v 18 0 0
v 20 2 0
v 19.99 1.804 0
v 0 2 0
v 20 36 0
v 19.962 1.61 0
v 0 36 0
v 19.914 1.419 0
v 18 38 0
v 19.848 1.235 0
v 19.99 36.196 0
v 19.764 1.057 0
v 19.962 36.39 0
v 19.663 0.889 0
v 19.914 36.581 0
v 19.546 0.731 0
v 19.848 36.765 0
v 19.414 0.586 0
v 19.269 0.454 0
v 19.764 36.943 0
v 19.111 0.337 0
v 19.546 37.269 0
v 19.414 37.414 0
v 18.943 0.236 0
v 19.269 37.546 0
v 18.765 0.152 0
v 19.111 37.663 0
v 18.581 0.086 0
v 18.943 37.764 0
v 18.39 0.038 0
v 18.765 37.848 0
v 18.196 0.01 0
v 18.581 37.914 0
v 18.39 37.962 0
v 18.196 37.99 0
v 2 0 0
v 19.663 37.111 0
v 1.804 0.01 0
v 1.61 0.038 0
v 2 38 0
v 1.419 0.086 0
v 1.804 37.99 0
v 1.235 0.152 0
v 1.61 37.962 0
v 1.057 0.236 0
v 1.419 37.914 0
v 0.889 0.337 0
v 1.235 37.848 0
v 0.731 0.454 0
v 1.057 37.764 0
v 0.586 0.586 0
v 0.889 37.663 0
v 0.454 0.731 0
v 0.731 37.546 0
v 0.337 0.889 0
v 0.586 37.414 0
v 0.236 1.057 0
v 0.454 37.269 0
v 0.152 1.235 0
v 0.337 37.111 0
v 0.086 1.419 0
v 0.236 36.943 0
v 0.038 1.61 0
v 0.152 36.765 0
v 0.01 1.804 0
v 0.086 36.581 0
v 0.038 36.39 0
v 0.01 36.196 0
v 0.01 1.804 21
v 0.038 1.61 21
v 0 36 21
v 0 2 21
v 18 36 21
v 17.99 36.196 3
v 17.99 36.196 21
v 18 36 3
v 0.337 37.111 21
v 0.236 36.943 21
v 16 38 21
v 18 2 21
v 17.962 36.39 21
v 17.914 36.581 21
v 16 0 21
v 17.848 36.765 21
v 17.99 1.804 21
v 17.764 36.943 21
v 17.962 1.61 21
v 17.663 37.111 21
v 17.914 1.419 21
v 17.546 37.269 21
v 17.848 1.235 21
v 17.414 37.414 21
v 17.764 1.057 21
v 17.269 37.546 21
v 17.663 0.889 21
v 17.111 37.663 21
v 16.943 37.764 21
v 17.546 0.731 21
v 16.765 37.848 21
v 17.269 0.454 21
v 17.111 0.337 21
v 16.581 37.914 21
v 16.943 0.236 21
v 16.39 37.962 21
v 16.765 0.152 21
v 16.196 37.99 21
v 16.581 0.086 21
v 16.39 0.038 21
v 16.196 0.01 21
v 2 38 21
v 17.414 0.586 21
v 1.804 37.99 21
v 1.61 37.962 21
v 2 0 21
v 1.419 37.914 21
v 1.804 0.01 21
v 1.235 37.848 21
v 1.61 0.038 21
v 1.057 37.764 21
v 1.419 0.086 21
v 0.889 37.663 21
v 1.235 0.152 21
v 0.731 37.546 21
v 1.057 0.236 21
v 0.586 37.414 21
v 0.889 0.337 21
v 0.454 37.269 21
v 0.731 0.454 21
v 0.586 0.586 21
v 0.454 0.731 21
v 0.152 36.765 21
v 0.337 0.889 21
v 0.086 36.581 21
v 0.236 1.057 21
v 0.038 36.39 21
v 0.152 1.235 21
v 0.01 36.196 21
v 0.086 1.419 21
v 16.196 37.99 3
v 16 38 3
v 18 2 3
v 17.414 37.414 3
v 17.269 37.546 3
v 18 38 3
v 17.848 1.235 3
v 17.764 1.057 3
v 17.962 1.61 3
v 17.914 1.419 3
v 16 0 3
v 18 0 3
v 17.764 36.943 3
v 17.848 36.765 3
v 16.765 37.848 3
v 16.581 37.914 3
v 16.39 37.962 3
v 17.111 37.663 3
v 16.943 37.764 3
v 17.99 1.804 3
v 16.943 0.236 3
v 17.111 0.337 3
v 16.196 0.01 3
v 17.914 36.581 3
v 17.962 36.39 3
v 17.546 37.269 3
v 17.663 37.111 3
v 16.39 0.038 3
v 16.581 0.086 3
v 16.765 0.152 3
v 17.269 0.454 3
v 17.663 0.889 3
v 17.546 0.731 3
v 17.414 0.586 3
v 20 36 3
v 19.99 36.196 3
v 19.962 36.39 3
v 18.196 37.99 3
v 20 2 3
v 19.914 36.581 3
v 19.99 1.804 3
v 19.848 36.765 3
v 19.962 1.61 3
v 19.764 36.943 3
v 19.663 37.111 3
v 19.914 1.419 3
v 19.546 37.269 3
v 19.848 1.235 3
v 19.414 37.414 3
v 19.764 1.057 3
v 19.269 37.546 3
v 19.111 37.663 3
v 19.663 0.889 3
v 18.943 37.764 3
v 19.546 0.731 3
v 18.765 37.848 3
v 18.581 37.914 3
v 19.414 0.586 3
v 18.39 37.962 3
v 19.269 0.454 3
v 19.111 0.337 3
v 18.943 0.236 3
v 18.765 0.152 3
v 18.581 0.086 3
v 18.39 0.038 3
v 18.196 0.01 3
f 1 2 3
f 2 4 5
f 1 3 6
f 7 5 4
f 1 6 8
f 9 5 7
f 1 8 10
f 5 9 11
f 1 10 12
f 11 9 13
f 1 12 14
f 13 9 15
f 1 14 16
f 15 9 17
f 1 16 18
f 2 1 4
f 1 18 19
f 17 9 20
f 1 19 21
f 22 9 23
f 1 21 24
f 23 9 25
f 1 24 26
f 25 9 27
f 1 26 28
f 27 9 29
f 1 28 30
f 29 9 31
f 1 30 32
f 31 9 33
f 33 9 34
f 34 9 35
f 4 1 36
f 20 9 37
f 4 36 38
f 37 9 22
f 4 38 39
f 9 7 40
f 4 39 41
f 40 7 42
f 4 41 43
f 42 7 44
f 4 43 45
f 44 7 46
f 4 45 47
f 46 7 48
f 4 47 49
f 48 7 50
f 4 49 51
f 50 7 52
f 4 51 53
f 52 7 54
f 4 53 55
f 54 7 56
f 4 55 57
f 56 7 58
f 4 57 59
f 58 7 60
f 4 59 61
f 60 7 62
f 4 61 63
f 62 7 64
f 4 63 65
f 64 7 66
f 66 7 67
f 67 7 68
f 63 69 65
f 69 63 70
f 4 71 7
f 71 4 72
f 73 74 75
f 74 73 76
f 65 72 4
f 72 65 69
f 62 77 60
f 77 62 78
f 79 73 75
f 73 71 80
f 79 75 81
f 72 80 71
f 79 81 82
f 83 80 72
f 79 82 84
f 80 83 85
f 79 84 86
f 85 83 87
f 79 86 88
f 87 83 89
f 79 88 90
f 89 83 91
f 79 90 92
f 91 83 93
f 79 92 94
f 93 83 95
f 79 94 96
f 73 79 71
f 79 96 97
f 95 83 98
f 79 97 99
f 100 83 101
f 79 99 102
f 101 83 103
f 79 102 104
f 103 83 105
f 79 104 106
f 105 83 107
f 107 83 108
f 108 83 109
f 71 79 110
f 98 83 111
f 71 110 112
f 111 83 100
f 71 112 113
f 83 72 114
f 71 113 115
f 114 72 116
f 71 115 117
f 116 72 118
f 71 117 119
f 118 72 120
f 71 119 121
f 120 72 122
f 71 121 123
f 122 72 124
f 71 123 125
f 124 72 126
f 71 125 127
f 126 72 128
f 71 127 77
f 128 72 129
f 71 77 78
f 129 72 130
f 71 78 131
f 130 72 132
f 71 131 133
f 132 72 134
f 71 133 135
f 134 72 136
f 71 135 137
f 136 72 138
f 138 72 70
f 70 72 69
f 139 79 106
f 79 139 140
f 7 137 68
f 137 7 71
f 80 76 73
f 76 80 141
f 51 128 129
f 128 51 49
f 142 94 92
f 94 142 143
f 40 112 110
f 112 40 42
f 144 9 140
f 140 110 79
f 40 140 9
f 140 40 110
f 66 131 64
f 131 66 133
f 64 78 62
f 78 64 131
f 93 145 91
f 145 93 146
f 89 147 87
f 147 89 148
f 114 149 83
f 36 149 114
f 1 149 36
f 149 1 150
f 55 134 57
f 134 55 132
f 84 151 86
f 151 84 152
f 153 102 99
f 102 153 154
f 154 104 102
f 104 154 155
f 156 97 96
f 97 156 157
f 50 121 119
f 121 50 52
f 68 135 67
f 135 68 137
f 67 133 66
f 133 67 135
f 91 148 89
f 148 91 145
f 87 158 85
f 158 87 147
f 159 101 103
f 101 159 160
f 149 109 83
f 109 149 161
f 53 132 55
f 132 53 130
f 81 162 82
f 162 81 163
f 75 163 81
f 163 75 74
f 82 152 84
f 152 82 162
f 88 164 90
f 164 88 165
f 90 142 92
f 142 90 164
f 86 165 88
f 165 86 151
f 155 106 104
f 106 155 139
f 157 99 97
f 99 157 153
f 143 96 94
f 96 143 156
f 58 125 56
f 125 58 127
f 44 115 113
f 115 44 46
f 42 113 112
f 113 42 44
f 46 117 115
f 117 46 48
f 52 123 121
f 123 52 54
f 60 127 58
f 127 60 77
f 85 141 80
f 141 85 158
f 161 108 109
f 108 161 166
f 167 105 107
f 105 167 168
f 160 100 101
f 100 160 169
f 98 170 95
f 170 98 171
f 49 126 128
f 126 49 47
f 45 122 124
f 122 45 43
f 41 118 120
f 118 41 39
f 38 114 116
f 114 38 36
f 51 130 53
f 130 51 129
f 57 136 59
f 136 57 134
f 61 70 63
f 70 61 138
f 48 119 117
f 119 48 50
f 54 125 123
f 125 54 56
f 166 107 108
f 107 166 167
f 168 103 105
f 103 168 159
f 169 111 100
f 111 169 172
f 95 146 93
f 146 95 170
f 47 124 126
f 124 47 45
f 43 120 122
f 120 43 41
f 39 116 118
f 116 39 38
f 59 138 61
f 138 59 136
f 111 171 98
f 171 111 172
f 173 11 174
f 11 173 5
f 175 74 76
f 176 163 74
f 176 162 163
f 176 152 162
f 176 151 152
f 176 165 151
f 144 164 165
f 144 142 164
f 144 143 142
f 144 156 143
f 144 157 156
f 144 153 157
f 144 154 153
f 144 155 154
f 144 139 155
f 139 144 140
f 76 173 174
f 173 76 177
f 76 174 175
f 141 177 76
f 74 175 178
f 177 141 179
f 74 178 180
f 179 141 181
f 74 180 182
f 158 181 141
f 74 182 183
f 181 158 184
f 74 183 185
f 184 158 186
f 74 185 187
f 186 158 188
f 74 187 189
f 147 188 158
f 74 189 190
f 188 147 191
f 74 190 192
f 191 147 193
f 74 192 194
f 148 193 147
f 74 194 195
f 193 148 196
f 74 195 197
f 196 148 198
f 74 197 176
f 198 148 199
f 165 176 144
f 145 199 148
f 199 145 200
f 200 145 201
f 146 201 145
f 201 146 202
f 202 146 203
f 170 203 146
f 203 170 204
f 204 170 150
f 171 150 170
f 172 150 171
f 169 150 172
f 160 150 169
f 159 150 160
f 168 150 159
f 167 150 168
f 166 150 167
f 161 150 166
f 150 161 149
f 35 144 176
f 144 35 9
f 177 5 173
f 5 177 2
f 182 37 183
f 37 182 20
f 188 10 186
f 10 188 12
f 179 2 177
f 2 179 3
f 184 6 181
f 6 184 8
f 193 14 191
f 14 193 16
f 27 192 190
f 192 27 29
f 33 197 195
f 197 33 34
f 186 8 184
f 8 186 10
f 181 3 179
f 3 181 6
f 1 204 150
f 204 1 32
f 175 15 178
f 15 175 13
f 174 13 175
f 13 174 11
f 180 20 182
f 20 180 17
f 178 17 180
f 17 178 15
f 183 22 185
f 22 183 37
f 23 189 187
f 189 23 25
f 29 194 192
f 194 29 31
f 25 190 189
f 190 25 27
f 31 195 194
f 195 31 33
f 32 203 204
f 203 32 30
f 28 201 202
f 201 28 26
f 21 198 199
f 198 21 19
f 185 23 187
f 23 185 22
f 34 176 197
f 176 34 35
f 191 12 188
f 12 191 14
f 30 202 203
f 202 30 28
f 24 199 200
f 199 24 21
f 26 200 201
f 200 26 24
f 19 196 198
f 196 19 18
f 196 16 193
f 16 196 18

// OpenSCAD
// file: ../../Various/SCAD/rounded_box.scad
/**
 * Small "library" for creating boxes with rounded edges.
 *
 * Hendrik Busch, 2017-18 (https://github.com/hmbusch)
 *
 */
 
/**
 * Creates a 2D-shape of a box with the given dimensions and rounded edges. 
 * Be sure to increase $fn for nicer edges.
 *
 * @param width
 *          the desired width of the box (default is 10mm)
 * @param depth
 *          the desired depth of the box (default is 10mm)
 * @param height
 *          the desired height of the box (default is 10mm)
 * @param edge_radius
 *          the radius of all the edges on the xy-plane (default is 2mm)
 */  
module box_with_round_edges_2d(width = 10, depth = 10, edge_radius = 2) {
    ed = edge_radius * 2;
    translate([edge_radius, edge_radius, 0]) hull() {
        circle(d = ed);
        translate([width - ed, 0, 0]) circle(d = ed);
        translate([0, depth - ed, 0]) circle(d = ed);
        translate([width - ed, depth - ed, 0]) circle(d = ed);    
    }
}
 
/**
 * Call to create a box with rounded edges (edges will be round on one plane only).
 * Be sure to increase $fn for nicer edges.
 * 
 * @param width
 *          the desired width of the box (default is 10mm)
 * @param depth
 *          the desired depth of the box (default is 10mm)
 * @param height
 *          the desired height of the box (default is 10mm)
 * @param edge_radius
 *          the radius of all the edges on the xy-plane (default is 2mm)
 *
 */
module box_with_round_edges_3d(width = 10, depth = 10, height = 10, edge_radius = 2) {
	linear_extrude(height = height) {
		box_with_round_edges_2d(width, depth, edge_radius);
	}
}

/**
 * Call to create a box with rounded edges (edges will be round on one plane only).
 * Be sure to increase $fn for nicer edges. This module has inputs that resemble
 * those of cube() so that it can act as a drop-in replacement.
 * 
 * @param dimensions
 *          3-value-array with x, y and z dimensions (default is 10x10x10mm).
 * @param edge_radius
 *          the radius of all the edges on the xy-plane (default is 2mm)
 *
 */
module box_with_round_edges_3d(dimensions = [10, 10, 10], edge_radius = 2) {
	linear_extrude(height = dimensions[2]) {
		box_with_round_edges_2d(dimensions[0], dimensions[1], edge_radius);
	}
}
// main file
use <../../Various/SCAD/rounded_box.scad>

$fn = 64;

box_with_round_edges_3d(dimensions = [18, 38, 21]);
box_with_round_edges_3d(dimensions = [20, 38, 3]);
